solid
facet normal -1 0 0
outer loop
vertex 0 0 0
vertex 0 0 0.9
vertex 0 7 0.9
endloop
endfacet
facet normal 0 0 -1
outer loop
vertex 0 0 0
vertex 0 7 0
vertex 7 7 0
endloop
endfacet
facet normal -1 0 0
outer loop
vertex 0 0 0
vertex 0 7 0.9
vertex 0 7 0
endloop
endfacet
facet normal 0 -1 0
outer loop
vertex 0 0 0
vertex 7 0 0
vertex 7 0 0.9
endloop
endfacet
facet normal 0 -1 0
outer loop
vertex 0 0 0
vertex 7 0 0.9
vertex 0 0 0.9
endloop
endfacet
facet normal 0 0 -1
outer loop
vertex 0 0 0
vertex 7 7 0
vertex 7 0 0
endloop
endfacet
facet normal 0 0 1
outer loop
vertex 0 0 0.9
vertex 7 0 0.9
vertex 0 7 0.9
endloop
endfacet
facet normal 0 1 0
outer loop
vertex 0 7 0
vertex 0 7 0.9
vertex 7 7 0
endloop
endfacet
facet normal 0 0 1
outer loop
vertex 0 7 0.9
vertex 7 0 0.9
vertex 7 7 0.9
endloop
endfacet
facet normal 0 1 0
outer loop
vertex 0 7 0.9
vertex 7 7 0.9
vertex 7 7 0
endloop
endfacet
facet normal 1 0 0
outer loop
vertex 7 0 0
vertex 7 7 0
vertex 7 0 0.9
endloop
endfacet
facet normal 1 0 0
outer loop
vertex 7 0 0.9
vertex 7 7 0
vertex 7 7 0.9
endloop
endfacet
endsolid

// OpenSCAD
/* Warning, this is a very basic generator with a lot of approximation 
input data : [VQFN, SPB, 7x7x0.9mm, 56, , A, C04-21416A]
generated by com.zoubworld.electronics.cad.model3d.Basic
Date : Sun Feb 15 10:50:49 CET 2026
*/

//body
color("black")
translate([0,0,0])
cube([7.0,7.0,0.9], center=false);
